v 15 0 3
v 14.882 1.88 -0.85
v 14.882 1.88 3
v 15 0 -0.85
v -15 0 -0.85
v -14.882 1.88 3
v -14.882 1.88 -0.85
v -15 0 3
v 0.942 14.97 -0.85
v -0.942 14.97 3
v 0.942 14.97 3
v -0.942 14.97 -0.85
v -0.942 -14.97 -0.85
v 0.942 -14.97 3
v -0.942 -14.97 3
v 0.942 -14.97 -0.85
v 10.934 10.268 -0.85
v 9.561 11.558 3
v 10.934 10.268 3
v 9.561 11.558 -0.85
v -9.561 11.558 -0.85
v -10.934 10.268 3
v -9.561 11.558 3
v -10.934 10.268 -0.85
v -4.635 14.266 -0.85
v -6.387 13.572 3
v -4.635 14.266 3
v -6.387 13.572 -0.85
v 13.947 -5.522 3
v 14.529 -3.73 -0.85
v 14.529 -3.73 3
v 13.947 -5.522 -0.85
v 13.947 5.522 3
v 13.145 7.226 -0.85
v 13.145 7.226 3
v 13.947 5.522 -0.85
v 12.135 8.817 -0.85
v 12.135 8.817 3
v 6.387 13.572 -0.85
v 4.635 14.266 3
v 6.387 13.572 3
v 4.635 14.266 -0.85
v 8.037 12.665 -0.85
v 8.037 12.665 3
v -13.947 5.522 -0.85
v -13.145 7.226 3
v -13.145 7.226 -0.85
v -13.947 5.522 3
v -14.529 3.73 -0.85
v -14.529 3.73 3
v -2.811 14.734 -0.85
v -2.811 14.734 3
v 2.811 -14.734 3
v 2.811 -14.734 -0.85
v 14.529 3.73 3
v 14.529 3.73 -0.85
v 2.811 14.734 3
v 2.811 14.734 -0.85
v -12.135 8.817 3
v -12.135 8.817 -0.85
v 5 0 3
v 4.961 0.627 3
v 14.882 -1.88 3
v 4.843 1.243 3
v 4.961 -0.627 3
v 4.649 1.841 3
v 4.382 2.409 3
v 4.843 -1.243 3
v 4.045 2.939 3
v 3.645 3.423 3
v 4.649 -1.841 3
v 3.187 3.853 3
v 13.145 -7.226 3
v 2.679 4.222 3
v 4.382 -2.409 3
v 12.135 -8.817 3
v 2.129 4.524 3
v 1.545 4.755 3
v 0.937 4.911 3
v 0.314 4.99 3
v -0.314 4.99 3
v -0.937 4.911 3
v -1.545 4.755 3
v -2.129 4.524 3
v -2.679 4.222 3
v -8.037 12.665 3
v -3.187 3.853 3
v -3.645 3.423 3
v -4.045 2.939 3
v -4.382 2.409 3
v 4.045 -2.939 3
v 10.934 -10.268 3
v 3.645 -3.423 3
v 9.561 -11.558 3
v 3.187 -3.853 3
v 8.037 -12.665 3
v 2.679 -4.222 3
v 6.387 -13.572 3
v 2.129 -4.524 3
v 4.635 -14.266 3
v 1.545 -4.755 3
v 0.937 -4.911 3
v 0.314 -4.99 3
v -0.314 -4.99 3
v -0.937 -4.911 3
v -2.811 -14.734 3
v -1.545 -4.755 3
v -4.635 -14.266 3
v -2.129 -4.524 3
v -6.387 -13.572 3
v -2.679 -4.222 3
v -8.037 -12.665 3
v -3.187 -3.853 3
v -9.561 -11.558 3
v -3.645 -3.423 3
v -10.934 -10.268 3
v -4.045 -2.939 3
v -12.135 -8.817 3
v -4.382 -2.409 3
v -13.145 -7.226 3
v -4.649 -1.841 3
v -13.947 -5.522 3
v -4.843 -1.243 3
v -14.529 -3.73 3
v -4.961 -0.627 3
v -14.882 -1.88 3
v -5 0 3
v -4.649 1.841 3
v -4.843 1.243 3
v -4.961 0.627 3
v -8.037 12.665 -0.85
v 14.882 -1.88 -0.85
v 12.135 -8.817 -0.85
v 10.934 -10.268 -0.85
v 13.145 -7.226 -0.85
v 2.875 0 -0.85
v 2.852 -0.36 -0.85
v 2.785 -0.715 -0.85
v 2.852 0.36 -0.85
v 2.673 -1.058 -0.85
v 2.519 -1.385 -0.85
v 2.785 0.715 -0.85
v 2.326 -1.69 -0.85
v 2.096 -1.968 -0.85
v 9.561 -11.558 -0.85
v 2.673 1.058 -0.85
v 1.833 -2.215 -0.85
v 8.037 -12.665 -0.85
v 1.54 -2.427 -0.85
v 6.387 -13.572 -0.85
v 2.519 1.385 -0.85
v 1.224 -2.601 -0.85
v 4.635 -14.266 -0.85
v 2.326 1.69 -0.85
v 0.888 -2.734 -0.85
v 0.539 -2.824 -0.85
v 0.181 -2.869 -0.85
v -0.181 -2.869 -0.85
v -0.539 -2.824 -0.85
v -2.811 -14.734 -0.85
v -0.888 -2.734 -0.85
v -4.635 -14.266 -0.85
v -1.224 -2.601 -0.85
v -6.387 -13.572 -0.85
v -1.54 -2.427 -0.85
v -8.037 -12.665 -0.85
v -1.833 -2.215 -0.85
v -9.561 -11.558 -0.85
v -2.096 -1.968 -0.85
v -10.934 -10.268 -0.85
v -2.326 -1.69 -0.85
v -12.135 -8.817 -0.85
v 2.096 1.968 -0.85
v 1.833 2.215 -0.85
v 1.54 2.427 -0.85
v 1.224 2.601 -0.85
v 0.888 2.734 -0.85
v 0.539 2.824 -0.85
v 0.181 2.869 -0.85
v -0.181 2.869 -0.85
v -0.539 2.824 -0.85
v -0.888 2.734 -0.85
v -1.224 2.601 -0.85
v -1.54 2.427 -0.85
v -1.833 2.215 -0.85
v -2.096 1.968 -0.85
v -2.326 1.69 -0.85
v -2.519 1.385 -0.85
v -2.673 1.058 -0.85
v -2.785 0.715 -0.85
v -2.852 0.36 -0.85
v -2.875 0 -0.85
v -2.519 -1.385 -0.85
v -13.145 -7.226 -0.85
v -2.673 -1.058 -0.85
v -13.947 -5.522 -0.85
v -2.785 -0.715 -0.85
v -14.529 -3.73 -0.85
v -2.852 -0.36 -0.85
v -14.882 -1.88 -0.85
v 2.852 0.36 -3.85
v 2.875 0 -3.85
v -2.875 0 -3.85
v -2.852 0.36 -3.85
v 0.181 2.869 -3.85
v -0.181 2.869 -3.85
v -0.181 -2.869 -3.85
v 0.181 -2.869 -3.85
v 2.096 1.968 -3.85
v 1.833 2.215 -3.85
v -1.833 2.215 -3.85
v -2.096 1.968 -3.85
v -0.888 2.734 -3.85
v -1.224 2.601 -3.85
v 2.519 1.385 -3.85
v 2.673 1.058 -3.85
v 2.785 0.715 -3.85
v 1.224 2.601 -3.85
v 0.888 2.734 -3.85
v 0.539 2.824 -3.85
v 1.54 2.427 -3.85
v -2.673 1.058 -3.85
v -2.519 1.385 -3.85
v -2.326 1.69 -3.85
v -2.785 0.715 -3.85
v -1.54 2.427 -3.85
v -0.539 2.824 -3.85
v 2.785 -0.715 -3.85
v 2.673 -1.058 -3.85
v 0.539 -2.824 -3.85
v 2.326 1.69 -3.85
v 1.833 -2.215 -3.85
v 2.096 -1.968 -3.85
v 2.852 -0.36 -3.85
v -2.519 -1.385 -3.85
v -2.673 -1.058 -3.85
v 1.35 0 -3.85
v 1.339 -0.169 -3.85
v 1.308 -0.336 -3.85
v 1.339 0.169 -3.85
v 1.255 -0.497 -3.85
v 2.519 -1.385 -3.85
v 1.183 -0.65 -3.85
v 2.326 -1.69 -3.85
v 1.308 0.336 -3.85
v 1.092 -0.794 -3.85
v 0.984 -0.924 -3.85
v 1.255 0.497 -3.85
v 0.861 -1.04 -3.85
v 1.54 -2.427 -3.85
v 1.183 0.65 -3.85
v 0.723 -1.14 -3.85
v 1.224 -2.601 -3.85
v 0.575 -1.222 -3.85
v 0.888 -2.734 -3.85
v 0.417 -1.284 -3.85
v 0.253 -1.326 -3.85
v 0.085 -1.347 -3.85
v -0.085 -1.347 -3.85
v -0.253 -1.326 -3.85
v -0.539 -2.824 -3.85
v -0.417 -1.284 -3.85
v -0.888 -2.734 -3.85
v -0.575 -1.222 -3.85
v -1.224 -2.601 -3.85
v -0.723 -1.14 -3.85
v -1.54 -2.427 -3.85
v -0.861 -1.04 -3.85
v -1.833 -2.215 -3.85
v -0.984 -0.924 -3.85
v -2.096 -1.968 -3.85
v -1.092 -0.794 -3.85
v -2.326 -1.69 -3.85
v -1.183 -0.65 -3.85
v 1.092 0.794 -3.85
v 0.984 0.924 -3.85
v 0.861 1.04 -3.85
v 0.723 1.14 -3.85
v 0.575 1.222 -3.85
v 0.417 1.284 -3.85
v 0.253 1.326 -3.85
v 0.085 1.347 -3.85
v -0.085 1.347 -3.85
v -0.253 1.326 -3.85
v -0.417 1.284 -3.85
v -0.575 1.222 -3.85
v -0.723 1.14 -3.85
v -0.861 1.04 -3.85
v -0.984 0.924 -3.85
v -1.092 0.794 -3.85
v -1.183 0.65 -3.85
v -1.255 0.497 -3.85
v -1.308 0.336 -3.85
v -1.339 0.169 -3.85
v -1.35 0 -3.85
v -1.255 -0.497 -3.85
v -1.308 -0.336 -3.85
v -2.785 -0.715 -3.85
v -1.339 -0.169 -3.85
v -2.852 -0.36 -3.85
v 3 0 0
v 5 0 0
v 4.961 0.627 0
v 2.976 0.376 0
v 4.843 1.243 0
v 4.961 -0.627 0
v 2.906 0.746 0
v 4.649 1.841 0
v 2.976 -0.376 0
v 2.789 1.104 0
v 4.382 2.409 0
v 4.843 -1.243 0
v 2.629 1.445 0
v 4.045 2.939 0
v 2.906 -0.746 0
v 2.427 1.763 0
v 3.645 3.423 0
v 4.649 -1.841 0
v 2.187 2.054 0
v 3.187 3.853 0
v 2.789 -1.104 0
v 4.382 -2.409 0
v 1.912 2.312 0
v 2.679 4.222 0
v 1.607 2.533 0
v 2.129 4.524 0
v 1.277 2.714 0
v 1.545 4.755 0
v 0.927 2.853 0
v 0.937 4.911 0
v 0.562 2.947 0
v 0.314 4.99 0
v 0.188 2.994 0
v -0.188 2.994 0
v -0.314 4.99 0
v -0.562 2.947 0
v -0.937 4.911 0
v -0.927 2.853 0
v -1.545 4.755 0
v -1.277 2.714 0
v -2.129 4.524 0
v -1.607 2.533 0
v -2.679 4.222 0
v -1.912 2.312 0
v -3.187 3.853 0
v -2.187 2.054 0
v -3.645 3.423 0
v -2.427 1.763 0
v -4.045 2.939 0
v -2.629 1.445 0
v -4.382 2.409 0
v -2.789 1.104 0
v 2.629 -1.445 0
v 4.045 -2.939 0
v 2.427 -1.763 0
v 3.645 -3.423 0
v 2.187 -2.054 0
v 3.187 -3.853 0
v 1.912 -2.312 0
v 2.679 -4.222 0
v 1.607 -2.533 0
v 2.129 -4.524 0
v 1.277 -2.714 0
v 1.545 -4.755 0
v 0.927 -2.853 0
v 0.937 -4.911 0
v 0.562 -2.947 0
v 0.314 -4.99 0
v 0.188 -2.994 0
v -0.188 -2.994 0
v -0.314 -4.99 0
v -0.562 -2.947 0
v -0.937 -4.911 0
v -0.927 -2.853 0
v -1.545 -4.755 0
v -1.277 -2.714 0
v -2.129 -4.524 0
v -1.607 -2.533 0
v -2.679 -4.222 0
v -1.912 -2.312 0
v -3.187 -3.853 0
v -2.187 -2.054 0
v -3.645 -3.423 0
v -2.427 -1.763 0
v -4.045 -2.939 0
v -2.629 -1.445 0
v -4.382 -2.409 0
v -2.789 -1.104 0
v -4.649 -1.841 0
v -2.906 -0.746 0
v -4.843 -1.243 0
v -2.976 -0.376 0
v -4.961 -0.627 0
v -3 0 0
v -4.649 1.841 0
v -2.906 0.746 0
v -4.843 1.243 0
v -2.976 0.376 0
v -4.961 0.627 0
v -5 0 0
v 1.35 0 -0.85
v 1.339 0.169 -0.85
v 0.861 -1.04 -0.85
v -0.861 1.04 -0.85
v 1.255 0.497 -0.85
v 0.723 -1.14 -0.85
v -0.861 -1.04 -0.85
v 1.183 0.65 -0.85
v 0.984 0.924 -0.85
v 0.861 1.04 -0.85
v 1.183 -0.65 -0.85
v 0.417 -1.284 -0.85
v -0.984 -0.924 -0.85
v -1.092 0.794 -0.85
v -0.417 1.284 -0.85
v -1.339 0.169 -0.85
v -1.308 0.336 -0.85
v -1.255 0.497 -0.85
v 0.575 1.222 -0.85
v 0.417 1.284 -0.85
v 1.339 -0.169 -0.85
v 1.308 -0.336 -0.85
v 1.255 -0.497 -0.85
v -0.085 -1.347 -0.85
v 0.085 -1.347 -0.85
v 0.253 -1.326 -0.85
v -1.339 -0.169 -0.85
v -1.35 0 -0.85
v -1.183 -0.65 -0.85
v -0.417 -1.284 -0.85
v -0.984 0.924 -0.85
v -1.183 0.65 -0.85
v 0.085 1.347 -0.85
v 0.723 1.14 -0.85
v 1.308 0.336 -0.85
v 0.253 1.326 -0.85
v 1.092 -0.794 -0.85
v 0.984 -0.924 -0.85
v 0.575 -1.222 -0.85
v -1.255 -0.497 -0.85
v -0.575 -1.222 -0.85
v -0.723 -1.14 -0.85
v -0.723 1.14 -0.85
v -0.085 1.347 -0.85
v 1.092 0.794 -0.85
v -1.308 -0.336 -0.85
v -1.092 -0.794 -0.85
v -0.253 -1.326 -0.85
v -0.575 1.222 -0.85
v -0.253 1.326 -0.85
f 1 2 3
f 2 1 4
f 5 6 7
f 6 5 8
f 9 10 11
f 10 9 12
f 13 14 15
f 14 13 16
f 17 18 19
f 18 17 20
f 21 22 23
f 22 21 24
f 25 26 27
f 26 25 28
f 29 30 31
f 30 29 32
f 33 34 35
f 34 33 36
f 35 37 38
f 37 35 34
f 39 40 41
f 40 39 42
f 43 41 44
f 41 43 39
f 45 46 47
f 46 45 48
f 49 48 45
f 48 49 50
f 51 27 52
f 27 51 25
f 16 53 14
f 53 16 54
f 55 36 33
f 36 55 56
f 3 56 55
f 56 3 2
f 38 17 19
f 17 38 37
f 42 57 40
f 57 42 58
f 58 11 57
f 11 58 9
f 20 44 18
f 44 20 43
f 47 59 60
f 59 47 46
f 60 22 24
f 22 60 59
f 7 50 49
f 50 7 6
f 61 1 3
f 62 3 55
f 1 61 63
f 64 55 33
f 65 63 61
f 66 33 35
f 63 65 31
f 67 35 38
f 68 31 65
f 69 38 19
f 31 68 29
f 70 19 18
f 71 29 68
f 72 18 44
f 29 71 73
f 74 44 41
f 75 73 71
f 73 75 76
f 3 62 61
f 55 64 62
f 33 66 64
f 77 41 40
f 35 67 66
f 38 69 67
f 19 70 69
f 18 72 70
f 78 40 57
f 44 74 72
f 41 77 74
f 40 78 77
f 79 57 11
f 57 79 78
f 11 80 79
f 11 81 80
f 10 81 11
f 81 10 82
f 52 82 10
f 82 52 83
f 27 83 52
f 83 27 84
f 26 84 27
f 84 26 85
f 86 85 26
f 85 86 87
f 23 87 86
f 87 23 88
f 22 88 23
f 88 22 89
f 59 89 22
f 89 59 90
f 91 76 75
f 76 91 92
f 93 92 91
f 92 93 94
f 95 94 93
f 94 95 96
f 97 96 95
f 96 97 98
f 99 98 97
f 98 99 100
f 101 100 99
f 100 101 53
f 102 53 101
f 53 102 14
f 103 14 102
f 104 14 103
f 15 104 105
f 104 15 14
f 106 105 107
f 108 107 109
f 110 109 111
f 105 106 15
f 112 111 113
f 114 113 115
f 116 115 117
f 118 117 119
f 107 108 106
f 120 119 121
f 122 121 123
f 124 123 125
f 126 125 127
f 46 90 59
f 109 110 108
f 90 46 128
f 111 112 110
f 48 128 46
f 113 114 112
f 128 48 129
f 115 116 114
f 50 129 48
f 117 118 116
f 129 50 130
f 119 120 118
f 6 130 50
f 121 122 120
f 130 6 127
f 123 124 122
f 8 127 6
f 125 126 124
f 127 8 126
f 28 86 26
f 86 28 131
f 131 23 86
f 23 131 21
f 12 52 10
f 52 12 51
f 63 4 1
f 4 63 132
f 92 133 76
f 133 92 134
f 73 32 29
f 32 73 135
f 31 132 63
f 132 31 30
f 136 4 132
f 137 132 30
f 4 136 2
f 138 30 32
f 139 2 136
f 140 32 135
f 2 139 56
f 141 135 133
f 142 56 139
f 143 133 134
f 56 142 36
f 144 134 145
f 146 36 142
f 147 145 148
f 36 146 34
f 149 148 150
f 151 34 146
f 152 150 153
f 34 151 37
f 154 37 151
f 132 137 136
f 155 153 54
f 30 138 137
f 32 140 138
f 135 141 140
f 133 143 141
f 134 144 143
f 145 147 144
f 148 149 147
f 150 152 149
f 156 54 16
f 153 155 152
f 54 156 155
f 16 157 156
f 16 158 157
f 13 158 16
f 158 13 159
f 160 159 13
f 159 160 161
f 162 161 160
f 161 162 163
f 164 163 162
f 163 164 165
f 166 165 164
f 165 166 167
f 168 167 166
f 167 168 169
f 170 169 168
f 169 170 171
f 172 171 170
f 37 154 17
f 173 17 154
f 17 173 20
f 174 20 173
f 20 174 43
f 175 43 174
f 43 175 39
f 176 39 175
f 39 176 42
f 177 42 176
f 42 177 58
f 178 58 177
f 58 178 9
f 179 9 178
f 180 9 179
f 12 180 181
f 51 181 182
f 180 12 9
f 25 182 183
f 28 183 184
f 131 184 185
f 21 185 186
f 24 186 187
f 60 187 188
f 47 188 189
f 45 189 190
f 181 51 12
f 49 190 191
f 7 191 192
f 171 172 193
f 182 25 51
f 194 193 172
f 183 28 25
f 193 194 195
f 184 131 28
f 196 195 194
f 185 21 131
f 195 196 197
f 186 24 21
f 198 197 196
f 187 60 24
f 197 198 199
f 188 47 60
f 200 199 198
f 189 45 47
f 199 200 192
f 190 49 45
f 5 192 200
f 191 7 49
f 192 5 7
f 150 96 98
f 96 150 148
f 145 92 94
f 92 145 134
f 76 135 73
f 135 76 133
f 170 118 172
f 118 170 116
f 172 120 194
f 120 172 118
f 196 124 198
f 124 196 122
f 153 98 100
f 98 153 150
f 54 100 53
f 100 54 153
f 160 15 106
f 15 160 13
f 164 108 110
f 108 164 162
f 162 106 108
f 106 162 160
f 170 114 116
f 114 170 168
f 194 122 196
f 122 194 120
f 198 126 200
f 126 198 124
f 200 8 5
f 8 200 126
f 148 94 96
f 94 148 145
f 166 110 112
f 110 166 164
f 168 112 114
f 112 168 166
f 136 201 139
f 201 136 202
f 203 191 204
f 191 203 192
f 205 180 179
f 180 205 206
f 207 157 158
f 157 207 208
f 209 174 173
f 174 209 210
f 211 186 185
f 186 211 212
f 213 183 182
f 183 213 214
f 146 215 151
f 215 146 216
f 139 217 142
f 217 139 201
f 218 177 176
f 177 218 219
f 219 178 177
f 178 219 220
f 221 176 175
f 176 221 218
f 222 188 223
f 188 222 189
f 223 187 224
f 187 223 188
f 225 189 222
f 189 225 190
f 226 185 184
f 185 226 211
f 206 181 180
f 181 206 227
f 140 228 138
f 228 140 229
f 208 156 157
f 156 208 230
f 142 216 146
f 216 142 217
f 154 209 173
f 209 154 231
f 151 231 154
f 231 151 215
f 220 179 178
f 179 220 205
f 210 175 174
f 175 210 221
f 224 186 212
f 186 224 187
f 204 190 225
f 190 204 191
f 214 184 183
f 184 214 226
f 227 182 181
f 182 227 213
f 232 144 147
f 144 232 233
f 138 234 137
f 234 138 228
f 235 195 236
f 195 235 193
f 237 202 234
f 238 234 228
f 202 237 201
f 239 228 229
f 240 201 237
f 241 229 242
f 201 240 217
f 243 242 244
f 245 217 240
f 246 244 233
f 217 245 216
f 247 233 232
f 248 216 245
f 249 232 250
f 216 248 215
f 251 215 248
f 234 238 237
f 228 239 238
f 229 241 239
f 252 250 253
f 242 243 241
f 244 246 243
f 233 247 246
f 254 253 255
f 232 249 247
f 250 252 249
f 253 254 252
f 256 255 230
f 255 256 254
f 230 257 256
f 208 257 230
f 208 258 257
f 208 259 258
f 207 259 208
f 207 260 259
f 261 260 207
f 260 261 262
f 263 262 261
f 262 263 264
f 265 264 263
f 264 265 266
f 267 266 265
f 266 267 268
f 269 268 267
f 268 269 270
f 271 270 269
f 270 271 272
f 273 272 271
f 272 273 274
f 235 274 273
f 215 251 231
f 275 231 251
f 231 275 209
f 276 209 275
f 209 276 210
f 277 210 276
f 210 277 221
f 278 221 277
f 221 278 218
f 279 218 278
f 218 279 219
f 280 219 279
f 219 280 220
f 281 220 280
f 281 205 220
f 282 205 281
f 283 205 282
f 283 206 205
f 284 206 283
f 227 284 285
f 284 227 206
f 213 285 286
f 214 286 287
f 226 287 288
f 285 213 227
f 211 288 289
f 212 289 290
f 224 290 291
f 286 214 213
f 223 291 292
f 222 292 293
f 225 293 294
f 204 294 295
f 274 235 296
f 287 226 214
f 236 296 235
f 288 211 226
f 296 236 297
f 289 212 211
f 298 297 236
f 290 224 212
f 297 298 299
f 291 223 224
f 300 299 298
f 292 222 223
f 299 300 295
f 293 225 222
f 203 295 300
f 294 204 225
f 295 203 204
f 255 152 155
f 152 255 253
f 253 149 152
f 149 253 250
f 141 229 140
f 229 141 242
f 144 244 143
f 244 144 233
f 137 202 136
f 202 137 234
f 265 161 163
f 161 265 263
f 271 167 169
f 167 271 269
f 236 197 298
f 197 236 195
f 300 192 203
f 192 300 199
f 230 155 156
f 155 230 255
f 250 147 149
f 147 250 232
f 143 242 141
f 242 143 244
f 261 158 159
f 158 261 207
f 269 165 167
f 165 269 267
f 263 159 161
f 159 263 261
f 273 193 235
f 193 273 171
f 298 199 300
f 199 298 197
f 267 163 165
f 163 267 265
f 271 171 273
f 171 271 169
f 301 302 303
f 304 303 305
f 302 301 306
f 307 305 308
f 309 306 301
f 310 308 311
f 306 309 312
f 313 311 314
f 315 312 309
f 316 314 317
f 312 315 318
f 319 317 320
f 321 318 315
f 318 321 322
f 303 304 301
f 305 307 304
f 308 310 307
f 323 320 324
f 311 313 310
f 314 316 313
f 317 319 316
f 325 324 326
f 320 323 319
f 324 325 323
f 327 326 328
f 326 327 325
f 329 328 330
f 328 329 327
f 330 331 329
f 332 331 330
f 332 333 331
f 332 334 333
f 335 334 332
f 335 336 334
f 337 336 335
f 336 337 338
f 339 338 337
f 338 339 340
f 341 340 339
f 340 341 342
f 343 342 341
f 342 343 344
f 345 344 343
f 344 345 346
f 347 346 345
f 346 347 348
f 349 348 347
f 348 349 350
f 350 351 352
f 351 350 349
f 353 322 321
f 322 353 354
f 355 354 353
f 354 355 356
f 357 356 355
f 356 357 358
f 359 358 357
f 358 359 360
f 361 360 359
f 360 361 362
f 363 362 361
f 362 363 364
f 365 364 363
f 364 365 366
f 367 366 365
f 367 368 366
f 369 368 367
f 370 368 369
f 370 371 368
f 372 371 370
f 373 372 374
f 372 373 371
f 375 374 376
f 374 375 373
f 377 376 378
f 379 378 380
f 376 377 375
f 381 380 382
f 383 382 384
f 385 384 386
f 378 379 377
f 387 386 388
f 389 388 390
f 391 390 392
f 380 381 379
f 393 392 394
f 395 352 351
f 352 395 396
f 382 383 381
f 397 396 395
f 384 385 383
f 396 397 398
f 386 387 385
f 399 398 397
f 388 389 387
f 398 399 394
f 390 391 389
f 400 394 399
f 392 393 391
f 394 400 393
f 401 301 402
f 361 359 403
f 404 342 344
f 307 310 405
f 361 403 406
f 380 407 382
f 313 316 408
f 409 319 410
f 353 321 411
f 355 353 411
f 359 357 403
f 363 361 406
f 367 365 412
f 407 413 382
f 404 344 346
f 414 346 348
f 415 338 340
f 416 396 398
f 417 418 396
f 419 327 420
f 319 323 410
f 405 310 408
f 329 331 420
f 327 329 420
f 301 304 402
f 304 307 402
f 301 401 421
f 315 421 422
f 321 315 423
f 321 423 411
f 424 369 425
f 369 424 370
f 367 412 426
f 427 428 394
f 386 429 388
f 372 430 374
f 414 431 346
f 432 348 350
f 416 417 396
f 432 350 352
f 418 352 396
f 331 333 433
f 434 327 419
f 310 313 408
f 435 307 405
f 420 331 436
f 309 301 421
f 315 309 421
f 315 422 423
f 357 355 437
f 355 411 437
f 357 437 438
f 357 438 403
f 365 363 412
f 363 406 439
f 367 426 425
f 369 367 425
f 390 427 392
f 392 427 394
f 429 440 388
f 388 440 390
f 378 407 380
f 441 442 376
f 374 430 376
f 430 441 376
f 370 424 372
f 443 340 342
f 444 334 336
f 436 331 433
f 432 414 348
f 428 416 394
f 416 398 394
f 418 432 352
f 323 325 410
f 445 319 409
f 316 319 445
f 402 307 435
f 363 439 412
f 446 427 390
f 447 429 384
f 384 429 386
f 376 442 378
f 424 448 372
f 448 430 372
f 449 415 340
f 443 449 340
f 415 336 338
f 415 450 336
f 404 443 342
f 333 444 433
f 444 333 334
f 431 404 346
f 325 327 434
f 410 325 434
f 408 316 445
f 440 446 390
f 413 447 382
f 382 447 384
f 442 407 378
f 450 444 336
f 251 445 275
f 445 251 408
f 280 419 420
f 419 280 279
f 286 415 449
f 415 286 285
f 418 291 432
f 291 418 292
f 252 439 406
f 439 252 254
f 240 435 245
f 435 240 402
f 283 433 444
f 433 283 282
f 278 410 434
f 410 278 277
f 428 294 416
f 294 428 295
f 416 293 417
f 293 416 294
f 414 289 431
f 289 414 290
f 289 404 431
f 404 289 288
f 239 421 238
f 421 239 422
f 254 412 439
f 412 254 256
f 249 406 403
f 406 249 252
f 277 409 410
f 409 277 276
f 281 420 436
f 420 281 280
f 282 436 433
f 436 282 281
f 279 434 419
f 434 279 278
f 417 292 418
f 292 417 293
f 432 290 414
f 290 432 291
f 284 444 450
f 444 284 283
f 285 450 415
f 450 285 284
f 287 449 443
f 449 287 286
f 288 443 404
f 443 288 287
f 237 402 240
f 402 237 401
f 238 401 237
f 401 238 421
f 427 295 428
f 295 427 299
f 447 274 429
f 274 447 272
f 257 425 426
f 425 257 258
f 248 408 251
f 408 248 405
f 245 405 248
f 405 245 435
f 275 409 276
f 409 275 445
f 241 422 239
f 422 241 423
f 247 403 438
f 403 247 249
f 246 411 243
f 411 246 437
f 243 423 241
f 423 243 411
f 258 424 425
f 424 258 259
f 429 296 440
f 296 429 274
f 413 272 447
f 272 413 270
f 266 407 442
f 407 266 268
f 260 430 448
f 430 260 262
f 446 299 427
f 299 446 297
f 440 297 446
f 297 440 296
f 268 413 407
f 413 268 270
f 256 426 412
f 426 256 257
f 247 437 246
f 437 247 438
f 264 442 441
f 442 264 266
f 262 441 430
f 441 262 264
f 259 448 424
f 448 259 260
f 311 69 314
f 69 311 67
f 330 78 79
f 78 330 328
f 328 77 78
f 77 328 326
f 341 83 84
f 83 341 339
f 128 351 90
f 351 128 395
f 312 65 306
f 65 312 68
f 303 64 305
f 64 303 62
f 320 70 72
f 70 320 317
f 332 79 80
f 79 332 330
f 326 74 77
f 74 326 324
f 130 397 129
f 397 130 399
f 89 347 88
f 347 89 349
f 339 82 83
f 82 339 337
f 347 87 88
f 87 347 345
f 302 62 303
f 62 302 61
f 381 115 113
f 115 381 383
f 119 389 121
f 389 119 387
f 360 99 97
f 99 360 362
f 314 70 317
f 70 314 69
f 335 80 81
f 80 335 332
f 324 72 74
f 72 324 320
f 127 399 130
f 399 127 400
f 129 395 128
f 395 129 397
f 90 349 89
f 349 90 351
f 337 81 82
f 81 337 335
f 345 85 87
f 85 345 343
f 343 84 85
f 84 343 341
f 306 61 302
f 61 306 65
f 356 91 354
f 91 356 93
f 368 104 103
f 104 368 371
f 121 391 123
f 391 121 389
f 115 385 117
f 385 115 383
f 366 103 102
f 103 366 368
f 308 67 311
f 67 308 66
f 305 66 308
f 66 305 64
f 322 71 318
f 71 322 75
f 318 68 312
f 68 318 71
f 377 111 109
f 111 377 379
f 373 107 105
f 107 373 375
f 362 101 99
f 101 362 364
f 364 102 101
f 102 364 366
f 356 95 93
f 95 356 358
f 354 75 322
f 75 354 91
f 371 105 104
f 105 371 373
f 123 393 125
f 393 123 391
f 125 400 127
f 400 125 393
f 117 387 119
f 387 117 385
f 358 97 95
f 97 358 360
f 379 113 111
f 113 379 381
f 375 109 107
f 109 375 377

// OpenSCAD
$fn = 50;


difference() {
	union() {
		translate(v = [0, 0, -0.8500000000]) {
			cylinder(h = 3.8500000000, r = 15.0000000000);
		}
		#translate(v = [0, 0, -3.8500000000]) {
			cylinder(h = 3.8500000000, r = 2.8750000000);
		}
	}
	union() {
		translate(v = [0, 0, 0]) {
			rotate(a = [0, 0, 0]) {
				difference() {
					union() {
						translate(v = [0, 0, -3.8500000000]) {
							cylinder(h = 3.8500000000, r = 1.0000000000);
						}
						translate(v = [0, 0, -0.8500000000]) {
							cylinder(h = 0.8500000000, r1 = 1.3500000000, r2 = 3.0000000000);
						}
						translate(v = [0, 0, -3.8500000000]) {
							cylinder(h = 3.8500000000, r = 1.3500000000);
						}
						translate(v = [0, 0, -3.8500000000]) {
							cylinder(h = 3.8500000000, r = 1.0000000000);
						}
					}
					union();
				}
			}
		}
		#cylinder(h = 3, r = 5.0000000000);
	}
}
